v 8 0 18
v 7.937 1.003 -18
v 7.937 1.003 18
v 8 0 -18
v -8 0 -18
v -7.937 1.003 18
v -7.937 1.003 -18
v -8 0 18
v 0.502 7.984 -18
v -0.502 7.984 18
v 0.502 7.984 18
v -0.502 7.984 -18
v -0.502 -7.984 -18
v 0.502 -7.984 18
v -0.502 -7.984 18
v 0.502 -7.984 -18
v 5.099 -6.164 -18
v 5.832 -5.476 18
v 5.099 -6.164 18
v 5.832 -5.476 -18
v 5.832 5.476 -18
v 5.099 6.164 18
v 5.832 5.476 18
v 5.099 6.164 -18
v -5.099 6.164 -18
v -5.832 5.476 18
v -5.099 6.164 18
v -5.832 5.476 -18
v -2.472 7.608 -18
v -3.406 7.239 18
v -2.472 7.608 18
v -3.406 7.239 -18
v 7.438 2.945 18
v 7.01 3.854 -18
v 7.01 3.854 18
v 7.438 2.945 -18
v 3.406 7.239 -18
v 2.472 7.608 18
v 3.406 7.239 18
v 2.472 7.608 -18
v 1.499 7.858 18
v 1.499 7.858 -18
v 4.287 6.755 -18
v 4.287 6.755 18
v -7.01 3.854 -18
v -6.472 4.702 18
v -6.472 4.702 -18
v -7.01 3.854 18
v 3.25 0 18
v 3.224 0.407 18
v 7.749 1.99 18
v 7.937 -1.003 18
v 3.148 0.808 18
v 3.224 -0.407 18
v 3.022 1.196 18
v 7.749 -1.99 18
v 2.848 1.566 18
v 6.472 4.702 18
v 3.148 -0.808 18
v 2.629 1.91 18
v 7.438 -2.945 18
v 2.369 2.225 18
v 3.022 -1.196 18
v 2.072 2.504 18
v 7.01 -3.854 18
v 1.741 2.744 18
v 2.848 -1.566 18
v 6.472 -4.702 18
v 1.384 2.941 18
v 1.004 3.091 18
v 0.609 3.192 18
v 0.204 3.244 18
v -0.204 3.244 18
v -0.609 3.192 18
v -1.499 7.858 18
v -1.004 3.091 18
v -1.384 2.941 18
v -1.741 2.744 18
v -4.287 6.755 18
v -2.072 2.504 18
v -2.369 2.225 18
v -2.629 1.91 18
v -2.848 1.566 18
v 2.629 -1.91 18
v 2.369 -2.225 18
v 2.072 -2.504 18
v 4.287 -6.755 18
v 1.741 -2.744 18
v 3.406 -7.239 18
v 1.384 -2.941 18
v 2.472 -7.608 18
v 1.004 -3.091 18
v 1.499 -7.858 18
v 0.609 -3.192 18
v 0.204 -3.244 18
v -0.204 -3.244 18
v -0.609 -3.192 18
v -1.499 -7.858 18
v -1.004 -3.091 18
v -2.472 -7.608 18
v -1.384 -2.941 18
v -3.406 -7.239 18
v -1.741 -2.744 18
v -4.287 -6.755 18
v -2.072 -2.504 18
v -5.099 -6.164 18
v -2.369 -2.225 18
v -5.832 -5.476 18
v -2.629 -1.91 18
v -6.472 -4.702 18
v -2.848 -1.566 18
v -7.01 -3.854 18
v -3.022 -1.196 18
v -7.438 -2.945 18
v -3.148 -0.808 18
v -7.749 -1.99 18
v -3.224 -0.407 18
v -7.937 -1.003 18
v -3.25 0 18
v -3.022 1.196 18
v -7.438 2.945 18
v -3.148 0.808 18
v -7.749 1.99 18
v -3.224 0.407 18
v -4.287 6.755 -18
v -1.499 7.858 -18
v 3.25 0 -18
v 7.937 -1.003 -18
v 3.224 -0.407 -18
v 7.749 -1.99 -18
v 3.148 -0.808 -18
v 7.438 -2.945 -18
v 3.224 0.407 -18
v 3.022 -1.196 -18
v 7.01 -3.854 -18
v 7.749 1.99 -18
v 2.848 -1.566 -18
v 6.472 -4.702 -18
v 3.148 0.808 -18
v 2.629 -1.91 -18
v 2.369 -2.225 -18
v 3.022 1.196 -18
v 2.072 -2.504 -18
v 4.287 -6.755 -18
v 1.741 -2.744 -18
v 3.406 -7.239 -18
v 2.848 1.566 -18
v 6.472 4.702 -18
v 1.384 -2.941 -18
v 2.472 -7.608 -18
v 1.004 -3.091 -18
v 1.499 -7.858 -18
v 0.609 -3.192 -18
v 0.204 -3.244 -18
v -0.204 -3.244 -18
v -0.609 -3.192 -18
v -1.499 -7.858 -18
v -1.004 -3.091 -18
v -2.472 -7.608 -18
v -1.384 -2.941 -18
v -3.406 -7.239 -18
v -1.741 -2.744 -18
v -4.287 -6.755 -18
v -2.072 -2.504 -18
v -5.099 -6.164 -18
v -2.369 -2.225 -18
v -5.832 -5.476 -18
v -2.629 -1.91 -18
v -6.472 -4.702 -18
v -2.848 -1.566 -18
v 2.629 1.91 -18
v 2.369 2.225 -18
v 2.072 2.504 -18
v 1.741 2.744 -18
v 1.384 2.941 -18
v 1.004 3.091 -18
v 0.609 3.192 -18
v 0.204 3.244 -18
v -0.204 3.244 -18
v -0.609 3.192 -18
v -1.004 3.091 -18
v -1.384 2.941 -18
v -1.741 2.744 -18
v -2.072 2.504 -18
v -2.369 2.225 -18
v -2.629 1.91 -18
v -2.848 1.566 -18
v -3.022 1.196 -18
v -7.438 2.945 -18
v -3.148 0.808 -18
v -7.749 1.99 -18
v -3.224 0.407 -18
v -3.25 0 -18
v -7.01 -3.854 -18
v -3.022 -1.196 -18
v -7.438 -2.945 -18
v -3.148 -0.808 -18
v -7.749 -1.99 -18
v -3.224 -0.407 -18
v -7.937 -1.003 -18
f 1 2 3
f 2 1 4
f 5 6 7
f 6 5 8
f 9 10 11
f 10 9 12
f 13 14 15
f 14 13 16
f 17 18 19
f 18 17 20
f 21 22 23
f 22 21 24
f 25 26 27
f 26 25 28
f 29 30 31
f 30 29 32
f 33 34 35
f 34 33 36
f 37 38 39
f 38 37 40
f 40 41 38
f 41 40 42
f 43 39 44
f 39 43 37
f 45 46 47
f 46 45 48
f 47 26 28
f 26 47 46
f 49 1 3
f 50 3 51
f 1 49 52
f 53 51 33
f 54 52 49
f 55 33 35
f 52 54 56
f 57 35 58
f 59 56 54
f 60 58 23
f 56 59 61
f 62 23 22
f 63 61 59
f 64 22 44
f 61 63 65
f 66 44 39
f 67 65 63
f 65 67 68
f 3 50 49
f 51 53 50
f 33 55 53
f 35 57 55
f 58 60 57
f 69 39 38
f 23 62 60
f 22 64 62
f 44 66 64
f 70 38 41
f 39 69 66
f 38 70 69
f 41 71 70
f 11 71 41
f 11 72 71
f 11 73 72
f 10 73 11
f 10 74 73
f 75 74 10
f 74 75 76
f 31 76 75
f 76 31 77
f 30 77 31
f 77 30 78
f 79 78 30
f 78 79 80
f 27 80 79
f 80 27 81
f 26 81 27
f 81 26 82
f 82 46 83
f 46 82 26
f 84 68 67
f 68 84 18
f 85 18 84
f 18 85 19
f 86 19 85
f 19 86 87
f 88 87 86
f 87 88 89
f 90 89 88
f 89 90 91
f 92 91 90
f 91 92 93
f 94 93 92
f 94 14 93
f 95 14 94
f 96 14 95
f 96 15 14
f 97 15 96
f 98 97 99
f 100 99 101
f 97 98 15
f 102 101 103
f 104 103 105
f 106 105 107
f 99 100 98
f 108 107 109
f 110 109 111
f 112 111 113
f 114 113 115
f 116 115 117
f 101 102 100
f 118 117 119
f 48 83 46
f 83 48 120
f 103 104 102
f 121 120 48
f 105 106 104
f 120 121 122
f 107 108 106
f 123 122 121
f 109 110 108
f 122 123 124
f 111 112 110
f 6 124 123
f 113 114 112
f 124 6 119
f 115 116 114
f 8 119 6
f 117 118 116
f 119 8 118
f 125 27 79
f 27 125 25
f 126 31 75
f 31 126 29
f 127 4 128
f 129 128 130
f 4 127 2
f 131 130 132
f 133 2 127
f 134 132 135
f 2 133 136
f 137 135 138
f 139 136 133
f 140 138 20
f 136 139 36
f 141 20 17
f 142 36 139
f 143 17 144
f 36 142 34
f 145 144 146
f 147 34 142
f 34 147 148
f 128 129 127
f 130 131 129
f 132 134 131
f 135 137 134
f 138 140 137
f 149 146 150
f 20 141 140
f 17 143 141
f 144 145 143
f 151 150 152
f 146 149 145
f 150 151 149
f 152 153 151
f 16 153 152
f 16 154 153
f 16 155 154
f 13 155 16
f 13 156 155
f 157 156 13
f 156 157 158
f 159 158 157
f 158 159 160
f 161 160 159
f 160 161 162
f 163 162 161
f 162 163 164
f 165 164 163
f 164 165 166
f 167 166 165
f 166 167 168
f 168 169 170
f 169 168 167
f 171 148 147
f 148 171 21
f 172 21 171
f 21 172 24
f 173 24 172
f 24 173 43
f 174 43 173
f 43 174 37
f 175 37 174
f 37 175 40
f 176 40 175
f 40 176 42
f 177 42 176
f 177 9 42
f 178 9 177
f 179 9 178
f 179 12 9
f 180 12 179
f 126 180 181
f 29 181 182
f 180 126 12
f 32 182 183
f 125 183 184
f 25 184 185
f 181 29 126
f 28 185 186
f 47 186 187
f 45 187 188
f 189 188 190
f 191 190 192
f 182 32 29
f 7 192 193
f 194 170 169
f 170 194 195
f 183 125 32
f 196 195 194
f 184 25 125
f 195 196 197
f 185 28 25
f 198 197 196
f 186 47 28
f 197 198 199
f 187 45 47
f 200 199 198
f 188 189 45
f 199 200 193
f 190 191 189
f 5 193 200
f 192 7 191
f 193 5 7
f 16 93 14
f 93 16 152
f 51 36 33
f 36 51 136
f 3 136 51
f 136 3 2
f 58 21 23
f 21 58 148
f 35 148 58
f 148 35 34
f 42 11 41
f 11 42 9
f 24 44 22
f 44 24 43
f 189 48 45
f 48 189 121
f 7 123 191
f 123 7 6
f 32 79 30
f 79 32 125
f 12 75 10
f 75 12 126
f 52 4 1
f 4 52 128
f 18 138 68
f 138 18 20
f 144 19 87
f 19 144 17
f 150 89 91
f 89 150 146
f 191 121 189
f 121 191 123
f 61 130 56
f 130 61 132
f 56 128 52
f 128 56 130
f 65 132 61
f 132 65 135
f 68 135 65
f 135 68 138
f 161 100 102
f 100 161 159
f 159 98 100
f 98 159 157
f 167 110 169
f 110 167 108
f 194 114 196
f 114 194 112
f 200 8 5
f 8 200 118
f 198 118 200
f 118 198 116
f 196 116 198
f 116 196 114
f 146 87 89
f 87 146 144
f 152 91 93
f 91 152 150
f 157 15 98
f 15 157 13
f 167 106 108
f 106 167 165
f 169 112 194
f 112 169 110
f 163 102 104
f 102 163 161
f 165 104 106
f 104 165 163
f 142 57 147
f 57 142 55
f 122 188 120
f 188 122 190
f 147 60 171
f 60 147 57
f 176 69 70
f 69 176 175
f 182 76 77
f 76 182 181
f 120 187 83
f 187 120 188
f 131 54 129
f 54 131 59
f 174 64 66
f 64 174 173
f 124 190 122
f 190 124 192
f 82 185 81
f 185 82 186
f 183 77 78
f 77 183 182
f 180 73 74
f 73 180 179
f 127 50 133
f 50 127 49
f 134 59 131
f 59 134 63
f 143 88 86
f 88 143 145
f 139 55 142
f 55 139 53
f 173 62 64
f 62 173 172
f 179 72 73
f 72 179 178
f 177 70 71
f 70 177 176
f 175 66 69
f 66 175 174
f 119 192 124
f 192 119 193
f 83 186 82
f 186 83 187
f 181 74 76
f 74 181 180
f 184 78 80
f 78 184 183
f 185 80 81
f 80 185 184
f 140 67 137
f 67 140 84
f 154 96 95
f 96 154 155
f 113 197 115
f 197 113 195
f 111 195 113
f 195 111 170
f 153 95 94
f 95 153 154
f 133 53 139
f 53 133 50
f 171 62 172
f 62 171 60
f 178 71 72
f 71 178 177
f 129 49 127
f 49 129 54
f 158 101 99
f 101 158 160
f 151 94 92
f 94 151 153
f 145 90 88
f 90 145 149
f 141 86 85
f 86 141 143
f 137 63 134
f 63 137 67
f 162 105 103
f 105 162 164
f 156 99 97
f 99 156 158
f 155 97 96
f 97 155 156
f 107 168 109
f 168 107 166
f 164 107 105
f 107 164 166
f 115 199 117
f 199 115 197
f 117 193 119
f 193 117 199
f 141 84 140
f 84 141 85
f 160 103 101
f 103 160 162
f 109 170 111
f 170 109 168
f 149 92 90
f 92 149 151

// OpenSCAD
$fn = 50;


difference() {
	union() {
		translate(v = [0, 0, -18.0000000000]) {
			cylinder(h = 36, r = 8.0000000000);
		}
	}
	union() {
		translate(v = [0, 0, -100.0000000000]) {
			cylinder(h = 200, r = 3.2500000000);
		}
	}
}
